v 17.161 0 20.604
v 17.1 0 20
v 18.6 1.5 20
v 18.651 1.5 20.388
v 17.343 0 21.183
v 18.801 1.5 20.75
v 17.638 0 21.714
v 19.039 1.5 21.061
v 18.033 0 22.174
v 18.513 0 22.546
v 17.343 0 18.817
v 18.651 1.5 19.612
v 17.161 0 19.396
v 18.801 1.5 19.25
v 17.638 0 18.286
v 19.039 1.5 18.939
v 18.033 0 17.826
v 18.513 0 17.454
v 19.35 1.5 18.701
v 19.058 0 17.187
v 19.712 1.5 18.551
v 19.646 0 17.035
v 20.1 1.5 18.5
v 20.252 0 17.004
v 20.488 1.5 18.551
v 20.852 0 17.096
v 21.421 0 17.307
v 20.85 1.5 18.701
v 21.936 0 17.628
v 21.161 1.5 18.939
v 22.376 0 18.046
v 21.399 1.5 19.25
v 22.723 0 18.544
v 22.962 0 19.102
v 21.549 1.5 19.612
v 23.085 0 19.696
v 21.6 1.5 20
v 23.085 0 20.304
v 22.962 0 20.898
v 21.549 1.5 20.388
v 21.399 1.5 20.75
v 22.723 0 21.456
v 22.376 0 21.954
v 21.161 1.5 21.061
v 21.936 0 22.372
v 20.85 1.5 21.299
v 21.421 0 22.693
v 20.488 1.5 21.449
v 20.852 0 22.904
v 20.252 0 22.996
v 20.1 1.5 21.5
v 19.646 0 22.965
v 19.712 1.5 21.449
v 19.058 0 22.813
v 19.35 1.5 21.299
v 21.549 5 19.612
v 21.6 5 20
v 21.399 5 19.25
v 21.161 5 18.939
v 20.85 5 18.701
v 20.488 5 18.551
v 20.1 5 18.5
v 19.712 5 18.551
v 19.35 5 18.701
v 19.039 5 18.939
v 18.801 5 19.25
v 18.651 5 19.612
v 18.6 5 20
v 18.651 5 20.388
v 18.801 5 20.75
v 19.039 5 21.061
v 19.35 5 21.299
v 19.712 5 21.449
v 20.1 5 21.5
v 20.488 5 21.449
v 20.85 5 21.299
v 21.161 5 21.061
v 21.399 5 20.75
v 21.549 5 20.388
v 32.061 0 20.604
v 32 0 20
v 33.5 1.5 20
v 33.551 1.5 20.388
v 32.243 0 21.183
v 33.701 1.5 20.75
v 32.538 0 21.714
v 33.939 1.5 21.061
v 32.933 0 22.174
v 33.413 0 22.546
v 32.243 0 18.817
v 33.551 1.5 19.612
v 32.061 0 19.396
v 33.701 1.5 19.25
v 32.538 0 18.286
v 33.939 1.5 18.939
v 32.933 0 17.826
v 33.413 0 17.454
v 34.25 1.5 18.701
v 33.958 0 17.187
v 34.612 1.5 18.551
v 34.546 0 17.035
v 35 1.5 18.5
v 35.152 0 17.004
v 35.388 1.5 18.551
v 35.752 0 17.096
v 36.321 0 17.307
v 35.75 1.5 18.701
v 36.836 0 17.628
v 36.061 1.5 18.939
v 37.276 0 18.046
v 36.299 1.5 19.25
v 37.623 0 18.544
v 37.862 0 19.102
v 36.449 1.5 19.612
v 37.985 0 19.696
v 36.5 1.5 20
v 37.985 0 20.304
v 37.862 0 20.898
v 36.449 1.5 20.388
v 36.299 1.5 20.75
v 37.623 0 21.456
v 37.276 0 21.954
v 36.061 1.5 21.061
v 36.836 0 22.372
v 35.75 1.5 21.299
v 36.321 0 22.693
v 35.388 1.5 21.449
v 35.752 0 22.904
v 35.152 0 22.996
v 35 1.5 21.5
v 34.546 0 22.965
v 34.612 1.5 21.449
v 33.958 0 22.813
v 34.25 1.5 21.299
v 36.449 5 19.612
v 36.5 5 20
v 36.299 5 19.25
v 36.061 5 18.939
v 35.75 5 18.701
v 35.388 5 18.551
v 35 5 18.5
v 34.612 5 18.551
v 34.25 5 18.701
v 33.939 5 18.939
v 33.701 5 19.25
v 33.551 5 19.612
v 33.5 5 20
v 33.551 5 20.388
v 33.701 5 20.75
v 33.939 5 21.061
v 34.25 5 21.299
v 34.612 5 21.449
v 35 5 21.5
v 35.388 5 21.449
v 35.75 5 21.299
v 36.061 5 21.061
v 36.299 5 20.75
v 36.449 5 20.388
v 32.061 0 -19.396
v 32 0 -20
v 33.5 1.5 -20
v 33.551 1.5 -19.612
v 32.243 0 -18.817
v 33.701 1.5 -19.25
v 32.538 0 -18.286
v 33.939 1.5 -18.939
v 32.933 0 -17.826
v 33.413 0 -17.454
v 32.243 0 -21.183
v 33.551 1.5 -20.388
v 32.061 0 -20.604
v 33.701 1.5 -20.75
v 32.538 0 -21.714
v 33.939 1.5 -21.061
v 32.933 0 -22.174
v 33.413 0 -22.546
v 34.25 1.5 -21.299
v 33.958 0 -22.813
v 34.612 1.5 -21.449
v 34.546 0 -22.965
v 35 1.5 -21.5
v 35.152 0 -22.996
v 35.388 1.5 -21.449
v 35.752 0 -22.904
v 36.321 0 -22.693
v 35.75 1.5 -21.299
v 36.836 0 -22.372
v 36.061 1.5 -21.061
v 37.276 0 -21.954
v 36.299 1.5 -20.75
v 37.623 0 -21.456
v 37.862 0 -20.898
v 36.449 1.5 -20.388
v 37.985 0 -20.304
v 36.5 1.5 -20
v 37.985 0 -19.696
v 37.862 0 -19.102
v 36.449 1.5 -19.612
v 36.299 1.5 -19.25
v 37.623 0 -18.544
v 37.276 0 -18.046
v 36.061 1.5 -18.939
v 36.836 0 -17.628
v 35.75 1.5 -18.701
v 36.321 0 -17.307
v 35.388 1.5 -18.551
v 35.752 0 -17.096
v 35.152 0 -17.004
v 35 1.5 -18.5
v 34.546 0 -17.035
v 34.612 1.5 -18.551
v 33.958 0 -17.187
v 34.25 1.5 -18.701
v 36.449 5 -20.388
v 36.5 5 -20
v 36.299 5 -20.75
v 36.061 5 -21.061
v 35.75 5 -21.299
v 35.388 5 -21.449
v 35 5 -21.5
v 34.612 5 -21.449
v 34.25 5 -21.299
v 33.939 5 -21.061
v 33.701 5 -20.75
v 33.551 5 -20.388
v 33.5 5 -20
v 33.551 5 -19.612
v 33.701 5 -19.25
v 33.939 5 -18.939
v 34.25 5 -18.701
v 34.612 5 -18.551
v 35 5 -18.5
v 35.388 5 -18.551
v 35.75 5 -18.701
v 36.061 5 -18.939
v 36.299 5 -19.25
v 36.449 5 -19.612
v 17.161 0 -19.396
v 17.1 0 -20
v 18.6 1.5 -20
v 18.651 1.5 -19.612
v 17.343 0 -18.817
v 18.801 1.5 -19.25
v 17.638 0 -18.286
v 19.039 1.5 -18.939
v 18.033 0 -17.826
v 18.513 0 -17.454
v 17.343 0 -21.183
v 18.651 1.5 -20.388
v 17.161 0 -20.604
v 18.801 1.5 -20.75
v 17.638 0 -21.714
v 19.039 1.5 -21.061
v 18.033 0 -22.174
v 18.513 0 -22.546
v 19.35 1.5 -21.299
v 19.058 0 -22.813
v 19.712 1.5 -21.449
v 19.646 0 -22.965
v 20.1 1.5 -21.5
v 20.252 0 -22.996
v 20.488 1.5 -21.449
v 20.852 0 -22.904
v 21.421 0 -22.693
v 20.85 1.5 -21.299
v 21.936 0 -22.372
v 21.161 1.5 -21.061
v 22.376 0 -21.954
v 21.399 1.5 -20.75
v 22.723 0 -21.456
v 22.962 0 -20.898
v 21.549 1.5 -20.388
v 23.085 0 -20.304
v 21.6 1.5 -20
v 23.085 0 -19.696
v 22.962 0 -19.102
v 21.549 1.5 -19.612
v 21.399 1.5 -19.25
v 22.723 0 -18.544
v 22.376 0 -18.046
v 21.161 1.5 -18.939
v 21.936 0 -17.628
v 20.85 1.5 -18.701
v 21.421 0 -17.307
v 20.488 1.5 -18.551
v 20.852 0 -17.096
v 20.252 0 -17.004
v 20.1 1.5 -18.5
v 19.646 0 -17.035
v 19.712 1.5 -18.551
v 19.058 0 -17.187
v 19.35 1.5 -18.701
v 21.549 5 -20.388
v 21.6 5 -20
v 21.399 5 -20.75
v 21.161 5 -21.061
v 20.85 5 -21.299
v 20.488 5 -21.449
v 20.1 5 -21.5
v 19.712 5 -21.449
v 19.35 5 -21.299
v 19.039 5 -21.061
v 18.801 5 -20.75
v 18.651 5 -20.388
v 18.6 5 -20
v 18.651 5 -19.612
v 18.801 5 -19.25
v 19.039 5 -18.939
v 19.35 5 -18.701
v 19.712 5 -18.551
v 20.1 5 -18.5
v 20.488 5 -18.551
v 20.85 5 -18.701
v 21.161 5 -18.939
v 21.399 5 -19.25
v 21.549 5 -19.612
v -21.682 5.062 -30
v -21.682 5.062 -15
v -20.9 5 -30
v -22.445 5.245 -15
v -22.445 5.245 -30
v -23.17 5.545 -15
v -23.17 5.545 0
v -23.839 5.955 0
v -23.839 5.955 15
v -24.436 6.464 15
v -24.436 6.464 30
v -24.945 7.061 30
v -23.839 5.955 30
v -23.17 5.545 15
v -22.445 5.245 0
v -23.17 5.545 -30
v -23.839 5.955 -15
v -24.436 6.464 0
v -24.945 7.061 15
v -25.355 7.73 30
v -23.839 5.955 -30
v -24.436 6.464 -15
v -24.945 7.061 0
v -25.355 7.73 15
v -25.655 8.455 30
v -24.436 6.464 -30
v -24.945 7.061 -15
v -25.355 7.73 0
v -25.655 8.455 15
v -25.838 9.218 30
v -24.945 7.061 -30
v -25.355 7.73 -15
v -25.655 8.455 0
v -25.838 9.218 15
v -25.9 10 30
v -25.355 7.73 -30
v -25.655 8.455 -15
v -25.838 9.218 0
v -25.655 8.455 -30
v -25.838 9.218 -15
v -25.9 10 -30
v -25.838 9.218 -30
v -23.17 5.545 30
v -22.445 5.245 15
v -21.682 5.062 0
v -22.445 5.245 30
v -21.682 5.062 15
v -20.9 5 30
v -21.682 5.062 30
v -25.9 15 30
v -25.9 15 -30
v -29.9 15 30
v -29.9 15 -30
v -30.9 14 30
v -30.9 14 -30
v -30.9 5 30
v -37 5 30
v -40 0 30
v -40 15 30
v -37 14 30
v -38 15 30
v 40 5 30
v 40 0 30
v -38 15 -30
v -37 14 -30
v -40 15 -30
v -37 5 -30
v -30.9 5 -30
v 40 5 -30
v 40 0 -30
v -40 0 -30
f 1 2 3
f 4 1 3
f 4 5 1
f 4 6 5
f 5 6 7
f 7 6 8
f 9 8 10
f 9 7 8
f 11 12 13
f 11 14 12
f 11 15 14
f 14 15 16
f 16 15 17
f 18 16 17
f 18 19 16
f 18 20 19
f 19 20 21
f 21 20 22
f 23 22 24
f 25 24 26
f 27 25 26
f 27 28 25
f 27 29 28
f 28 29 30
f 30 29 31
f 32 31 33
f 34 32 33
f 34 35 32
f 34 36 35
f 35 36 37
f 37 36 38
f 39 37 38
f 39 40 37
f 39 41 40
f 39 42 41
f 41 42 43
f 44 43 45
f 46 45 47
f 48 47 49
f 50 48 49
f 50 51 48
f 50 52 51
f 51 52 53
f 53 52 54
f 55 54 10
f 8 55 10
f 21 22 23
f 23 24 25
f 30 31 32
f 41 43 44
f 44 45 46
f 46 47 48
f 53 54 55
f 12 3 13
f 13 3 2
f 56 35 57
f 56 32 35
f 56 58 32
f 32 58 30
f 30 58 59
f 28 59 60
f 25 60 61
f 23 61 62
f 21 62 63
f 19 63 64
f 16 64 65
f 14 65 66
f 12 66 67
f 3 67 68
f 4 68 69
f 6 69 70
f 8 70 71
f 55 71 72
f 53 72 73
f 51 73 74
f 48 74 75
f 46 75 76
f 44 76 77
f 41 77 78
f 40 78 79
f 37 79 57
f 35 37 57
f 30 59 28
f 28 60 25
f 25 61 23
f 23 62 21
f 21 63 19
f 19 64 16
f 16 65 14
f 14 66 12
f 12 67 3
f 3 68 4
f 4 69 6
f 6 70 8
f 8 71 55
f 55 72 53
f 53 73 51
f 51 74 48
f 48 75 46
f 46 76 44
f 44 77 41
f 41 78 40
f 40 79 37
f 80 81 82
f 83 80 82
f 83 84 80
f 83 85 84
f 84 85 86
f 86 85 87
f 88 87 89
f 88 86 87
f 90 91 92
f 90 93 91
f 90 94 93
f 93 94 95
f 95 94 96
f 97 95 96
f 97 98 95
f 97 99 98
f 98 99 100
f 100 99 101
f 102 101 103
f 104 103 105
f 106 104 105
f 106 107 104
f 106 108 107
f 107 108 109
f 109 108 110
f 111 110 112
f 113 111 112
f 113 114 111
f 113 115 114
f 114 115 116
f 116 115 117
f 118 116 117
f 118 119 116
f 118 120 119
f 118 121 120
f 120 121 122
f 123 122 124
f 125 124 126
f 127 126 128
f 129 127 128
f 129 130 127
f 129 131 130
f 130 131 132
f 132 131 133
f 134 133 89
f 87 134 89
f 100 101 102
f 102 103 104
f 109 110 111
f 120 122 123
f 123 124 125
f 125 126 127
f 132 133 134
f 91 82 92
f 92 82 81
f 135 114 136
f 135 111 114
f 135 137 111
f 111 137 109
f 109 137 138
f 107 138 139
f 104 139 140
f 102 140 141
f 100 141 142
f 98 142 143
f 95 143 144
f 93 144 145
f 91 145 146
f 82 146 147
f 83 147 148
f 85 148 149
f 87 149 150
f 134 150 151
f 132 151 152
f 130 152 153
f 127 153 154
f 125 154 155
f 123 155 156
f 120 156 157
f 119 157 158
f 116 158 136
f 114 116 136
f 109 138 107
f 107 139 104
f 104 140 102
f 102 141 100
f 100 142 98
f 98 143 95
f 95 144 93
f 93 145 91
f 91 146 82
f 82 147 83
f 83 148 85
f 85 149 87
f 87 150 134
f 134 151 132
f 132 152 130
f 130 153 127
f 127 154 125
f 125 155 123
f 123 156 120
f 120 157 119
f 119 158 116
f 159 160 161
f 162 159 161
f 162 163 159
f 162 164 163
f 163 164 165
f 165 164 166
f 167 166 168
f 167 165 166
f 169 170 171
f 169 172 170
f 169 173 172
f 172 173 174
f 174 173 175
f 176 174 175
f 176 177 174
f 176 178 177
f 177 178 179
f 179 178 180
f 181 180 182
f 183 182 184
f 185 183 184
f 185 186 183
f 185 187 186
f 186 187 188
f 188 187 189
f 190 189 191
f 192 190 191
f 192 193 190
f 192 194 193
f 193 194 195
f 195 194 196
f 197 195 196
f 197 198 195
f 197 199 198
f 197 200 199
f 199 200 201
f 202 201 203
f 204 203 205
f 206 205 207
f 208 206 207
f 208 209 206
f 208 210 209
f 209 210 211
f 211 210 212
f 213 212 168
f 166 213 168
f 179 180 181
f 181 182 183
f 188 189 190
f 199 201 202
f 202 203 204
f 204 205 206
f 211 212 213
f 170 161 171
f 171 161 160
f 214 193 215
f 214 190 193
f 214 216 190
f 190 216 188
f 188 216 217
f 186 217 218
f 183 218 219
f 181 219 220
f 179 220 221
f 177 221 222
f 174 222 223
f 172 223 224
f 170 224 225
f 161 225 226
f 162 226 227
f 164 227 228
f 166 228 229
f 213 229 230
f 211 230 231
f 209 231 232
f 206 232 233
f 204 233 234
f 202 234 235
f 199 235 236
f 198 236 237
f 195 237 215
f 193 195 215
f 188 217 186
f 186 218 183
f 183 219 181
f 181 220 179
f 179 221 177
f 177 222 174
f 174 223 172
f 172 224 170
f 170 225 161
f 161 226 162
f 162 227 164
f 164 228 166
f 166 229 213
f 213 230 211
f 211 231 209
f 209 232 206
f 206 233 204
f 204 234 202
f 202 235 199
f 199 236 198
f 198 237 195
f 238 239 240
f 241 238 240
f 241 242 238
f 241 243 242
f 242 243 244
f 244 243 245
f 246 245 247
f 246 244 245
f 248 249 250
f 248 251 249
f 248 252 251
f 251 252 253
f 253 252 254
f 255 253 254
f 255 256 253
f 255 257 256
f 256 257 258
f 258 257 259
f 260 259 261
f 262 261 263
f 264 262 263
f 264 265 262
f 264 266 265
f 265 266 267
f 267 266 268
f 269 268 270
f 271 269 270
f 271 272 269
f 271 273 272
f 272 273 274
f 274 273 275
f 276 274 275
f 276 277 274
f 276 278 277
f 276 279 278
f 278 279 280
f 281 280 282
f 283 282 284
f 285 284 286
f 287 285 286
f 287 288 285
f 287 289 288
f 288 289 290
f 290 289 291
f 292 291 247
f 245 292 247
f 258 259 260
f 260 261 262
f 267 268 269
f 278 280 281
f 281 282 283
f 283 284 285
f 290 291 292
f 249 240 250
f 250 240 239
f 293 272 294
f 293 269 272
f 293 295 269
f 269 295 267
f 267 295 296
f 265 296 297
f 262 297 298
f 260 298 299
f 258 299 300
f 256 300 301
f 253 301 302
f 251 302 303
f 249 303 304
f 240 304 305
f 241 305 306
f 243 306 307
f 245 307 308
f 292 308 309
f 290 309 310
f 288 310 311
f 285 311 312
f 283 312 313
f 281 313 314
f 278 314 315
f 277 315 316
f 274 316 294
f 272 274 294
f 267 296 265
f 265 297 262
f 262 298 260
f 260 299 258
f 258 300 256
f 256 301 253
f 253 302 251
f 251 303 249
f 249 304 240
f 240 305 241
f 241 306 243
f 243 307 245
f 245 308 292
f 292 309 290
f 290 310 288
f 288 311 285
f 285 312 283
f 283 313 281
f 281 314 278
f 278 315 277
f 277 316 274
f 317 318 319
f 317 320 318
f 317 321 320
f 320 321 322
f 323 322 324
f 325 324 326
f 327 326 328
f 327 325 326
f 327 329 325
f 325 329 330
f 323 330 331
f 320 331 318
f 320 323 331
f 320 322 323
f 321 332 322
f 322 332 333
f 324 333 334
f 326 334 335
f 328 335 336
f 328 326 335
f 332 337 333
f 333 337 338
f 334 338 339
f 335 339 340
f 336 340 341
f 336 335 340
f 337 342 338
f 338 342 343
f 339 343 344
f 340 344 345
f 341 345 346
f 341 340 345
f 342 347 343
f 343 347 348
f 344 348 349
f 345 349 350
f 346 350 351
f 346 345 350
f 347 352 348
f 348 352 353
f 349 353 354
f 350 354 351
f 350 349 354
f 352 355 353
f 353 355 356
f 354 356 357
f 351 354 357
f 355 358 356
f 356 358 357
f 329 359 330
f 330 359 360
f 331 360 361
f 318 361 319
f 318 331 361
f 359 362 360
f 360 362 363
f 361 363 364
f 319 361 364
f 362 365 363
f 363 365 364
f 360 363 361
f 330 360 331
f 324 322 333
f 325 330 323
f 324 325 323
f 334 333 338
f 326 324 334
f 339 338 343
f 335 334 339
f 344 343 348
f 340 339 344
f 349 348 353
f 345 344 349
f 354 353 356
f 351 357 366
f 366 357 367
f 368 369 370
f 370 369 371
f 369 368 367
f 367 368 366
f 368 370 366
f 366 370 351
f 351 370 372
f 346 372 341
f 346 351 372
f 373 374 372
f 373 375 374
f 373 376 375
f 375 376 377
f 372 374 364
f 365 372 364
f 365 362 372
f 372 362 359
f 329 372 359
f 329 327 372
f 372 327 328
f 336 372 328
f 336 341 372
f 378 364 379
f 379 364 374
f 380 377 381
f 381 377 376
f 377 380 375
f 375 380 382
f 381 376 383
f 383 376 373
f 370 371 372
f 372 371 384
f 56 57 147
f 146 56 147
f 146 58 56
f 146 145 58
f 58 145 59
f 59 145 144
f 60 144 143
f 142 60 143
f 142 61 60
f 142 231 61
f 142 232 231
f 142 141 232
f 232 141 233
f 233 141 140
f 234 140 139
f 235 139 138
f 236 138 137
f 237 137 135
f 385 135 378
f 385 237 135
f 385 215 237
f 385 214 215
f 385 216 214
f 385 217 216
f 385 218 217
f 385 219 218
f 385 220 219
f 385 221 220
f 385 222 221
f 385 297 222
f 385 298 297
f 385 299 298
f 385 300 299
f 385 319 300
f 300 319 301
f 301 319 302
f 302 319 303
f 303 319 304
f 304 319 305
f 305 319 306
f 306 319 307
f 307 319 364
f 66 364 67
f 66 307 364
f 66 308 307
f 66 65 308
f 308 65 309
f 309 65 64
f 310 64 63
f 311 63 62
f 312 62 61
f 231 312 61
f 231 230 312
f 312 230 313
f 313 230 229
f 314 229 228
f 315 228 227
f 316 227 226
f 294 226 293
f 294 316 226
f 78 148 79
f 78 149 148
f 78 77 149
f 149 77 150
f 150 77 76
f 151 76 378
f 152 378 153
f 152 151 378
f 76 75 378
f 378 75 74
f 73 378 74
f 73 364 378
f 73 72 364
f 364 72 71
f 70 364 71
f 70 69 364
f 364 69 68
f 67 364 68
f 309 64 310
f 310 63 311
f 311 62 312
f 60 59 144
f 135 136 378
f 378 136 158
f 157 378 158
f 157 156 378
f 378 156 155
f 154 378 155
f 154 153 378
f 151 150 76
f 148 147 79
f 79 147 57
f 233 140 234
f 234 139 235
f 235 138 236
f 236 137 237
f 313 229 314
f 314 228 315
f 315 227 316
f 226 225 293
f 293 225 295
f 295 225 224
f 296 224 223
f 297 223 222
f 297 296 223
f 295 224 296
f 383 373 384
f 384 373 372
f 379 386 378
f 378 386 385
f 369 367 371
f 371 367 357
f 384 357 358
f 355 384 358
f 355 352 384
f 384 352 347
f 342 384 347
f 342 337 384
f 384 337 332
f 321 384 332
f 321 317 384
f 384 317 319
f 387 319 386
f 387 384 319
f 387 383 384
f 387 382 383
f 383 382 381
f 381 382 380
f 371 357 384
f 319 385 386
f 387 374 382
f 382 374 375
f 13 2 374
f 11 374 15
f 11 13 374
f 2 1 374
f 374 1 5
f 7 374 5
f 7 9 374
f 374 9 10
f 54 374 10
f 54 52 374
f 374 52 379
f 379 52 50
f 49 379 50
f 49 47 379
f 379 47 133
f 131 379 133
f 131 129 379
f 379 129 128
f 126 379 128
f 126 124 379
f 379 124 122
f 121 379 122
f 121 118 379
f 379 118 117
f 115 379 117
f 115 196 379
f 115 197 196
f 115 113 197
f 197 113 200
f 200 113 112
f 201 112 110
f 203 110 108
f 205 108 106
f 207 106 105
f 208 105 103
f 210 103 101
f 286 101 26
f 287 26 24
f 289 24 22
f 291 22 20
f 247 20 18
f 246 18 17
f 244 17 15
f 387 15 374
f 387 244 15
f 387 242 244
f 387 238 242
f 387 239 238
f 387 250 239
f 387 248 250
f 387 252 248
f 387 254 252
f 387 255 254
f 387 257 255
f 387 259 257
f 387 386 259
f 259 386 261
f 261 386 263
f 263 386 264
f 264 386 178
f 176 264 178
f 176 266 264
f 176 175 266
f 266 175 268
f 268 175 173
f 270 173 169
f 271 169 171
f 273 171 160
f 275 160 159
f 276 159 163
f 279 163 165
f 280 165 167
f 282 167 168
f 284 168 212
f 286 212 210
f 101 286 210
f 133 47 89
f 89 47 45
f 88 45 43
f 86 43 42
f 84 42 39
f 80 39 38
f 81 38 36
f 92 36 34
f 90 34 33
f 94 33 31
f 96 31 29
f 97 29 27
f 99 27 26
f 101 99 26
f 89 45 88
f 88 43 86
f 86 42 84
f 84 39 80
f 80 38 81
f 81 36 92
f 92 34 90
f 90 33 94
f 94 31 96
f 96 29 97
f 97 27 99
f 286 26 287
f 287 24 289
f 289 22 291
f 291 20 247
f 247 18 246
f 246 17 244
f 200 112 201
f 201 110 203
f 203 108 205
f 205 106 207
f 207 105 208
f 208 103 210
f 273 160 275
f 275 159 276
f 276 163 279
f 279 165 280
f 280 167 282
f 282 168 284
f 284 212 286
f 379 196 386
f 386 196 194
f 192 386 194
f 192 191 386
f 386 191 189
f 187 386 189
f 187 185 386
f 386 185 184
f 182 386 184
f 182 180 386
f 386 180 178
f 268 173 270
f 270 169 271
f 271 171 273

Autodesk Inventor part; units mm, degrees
ref_plane "YZ Plane" through (0, 0, 0) normal (1, 0, 0) x (0, 1, 0)
ref_plane "XZ Plane" through (0, 0, 0) normal (0, 1, 0) x (-1, 0, 0)
ref_plane "XY Plane" through (0, 0, 0) normal (0, 0, 1) x (1, 0, 0)
sketch "Sketch1" plane through (0, 0, 0) normal (0, 1, 0) x (-1, 0, 0)
  line L0 (-40, 30) -> (40, 30)
  line L1 (40, 30) -> (40, -30)
  line L2 (40, -30) -> (-40, -30)
  line L3 (-40, -30) -> (-40, 30)
  line L4 (-40, 30) -> (40, -30) construction
  line L5 (40, 30) -> (-40, -30) construction
  line L6 (25.245, -30) -> (20.245, -30)
  line L7 (20.245, 30) -> (25.245, 30)
  line L8 (37, 30) -> (37, -30)
  line L9 (30.9, -30) -> (30.9, 30)
  line L10 (25.9, -30) -> (25.9, 30)
  line L11 (-10.1, -30) -> (-10.1, 30) construction
  point P0 (0, 0)
  point P1 (-35, 20)
  point P2 (-35, -20)
  point P3 (-20.1, 20)
  point P4 (-20.1, -20)
  dimension "d0" = 80
  dimension "d1" = 60
  dimension "d3" = 3
  dimension "d4" = 6.1
  dimension "d5" = 5
  dimension "d6" = 10
  dimension "d7" = 10
  dimension "d8" = 5
  dimension "d9" = 5
  dimension "d10" = 36
  dimension "d11" = 10
  dimension "d12" = 10
extrude "Extrusion1" add sketch "Sketch1" along normal blind 5
extrude "Extrusion2" add sketch "Sketch1" along normal blind 15 contours L0 L9 L2 L10 | L0 L1 L2 L8
chamfer "Chamfer1" distance 1 angle 45 2 edges at (-37, 15, 0) (-30.9, 15, 0)
fillet "Fillet1" radius 5 1 edges at (-25.9, 5, 0)
hole "Hole1" at (35, 0, 20) at (35, 0, -20) at (20.1, 0, 20) at (20.1, 0, -20) direction (0, 1, 0) diameter 3 end through all countersink diameter 6 countersink angle 90
equation "\"d7\" = d6"
equation "\"d9\" = d8"
equation "\"d12\" = d11"
properties part number "stabilisateur"
